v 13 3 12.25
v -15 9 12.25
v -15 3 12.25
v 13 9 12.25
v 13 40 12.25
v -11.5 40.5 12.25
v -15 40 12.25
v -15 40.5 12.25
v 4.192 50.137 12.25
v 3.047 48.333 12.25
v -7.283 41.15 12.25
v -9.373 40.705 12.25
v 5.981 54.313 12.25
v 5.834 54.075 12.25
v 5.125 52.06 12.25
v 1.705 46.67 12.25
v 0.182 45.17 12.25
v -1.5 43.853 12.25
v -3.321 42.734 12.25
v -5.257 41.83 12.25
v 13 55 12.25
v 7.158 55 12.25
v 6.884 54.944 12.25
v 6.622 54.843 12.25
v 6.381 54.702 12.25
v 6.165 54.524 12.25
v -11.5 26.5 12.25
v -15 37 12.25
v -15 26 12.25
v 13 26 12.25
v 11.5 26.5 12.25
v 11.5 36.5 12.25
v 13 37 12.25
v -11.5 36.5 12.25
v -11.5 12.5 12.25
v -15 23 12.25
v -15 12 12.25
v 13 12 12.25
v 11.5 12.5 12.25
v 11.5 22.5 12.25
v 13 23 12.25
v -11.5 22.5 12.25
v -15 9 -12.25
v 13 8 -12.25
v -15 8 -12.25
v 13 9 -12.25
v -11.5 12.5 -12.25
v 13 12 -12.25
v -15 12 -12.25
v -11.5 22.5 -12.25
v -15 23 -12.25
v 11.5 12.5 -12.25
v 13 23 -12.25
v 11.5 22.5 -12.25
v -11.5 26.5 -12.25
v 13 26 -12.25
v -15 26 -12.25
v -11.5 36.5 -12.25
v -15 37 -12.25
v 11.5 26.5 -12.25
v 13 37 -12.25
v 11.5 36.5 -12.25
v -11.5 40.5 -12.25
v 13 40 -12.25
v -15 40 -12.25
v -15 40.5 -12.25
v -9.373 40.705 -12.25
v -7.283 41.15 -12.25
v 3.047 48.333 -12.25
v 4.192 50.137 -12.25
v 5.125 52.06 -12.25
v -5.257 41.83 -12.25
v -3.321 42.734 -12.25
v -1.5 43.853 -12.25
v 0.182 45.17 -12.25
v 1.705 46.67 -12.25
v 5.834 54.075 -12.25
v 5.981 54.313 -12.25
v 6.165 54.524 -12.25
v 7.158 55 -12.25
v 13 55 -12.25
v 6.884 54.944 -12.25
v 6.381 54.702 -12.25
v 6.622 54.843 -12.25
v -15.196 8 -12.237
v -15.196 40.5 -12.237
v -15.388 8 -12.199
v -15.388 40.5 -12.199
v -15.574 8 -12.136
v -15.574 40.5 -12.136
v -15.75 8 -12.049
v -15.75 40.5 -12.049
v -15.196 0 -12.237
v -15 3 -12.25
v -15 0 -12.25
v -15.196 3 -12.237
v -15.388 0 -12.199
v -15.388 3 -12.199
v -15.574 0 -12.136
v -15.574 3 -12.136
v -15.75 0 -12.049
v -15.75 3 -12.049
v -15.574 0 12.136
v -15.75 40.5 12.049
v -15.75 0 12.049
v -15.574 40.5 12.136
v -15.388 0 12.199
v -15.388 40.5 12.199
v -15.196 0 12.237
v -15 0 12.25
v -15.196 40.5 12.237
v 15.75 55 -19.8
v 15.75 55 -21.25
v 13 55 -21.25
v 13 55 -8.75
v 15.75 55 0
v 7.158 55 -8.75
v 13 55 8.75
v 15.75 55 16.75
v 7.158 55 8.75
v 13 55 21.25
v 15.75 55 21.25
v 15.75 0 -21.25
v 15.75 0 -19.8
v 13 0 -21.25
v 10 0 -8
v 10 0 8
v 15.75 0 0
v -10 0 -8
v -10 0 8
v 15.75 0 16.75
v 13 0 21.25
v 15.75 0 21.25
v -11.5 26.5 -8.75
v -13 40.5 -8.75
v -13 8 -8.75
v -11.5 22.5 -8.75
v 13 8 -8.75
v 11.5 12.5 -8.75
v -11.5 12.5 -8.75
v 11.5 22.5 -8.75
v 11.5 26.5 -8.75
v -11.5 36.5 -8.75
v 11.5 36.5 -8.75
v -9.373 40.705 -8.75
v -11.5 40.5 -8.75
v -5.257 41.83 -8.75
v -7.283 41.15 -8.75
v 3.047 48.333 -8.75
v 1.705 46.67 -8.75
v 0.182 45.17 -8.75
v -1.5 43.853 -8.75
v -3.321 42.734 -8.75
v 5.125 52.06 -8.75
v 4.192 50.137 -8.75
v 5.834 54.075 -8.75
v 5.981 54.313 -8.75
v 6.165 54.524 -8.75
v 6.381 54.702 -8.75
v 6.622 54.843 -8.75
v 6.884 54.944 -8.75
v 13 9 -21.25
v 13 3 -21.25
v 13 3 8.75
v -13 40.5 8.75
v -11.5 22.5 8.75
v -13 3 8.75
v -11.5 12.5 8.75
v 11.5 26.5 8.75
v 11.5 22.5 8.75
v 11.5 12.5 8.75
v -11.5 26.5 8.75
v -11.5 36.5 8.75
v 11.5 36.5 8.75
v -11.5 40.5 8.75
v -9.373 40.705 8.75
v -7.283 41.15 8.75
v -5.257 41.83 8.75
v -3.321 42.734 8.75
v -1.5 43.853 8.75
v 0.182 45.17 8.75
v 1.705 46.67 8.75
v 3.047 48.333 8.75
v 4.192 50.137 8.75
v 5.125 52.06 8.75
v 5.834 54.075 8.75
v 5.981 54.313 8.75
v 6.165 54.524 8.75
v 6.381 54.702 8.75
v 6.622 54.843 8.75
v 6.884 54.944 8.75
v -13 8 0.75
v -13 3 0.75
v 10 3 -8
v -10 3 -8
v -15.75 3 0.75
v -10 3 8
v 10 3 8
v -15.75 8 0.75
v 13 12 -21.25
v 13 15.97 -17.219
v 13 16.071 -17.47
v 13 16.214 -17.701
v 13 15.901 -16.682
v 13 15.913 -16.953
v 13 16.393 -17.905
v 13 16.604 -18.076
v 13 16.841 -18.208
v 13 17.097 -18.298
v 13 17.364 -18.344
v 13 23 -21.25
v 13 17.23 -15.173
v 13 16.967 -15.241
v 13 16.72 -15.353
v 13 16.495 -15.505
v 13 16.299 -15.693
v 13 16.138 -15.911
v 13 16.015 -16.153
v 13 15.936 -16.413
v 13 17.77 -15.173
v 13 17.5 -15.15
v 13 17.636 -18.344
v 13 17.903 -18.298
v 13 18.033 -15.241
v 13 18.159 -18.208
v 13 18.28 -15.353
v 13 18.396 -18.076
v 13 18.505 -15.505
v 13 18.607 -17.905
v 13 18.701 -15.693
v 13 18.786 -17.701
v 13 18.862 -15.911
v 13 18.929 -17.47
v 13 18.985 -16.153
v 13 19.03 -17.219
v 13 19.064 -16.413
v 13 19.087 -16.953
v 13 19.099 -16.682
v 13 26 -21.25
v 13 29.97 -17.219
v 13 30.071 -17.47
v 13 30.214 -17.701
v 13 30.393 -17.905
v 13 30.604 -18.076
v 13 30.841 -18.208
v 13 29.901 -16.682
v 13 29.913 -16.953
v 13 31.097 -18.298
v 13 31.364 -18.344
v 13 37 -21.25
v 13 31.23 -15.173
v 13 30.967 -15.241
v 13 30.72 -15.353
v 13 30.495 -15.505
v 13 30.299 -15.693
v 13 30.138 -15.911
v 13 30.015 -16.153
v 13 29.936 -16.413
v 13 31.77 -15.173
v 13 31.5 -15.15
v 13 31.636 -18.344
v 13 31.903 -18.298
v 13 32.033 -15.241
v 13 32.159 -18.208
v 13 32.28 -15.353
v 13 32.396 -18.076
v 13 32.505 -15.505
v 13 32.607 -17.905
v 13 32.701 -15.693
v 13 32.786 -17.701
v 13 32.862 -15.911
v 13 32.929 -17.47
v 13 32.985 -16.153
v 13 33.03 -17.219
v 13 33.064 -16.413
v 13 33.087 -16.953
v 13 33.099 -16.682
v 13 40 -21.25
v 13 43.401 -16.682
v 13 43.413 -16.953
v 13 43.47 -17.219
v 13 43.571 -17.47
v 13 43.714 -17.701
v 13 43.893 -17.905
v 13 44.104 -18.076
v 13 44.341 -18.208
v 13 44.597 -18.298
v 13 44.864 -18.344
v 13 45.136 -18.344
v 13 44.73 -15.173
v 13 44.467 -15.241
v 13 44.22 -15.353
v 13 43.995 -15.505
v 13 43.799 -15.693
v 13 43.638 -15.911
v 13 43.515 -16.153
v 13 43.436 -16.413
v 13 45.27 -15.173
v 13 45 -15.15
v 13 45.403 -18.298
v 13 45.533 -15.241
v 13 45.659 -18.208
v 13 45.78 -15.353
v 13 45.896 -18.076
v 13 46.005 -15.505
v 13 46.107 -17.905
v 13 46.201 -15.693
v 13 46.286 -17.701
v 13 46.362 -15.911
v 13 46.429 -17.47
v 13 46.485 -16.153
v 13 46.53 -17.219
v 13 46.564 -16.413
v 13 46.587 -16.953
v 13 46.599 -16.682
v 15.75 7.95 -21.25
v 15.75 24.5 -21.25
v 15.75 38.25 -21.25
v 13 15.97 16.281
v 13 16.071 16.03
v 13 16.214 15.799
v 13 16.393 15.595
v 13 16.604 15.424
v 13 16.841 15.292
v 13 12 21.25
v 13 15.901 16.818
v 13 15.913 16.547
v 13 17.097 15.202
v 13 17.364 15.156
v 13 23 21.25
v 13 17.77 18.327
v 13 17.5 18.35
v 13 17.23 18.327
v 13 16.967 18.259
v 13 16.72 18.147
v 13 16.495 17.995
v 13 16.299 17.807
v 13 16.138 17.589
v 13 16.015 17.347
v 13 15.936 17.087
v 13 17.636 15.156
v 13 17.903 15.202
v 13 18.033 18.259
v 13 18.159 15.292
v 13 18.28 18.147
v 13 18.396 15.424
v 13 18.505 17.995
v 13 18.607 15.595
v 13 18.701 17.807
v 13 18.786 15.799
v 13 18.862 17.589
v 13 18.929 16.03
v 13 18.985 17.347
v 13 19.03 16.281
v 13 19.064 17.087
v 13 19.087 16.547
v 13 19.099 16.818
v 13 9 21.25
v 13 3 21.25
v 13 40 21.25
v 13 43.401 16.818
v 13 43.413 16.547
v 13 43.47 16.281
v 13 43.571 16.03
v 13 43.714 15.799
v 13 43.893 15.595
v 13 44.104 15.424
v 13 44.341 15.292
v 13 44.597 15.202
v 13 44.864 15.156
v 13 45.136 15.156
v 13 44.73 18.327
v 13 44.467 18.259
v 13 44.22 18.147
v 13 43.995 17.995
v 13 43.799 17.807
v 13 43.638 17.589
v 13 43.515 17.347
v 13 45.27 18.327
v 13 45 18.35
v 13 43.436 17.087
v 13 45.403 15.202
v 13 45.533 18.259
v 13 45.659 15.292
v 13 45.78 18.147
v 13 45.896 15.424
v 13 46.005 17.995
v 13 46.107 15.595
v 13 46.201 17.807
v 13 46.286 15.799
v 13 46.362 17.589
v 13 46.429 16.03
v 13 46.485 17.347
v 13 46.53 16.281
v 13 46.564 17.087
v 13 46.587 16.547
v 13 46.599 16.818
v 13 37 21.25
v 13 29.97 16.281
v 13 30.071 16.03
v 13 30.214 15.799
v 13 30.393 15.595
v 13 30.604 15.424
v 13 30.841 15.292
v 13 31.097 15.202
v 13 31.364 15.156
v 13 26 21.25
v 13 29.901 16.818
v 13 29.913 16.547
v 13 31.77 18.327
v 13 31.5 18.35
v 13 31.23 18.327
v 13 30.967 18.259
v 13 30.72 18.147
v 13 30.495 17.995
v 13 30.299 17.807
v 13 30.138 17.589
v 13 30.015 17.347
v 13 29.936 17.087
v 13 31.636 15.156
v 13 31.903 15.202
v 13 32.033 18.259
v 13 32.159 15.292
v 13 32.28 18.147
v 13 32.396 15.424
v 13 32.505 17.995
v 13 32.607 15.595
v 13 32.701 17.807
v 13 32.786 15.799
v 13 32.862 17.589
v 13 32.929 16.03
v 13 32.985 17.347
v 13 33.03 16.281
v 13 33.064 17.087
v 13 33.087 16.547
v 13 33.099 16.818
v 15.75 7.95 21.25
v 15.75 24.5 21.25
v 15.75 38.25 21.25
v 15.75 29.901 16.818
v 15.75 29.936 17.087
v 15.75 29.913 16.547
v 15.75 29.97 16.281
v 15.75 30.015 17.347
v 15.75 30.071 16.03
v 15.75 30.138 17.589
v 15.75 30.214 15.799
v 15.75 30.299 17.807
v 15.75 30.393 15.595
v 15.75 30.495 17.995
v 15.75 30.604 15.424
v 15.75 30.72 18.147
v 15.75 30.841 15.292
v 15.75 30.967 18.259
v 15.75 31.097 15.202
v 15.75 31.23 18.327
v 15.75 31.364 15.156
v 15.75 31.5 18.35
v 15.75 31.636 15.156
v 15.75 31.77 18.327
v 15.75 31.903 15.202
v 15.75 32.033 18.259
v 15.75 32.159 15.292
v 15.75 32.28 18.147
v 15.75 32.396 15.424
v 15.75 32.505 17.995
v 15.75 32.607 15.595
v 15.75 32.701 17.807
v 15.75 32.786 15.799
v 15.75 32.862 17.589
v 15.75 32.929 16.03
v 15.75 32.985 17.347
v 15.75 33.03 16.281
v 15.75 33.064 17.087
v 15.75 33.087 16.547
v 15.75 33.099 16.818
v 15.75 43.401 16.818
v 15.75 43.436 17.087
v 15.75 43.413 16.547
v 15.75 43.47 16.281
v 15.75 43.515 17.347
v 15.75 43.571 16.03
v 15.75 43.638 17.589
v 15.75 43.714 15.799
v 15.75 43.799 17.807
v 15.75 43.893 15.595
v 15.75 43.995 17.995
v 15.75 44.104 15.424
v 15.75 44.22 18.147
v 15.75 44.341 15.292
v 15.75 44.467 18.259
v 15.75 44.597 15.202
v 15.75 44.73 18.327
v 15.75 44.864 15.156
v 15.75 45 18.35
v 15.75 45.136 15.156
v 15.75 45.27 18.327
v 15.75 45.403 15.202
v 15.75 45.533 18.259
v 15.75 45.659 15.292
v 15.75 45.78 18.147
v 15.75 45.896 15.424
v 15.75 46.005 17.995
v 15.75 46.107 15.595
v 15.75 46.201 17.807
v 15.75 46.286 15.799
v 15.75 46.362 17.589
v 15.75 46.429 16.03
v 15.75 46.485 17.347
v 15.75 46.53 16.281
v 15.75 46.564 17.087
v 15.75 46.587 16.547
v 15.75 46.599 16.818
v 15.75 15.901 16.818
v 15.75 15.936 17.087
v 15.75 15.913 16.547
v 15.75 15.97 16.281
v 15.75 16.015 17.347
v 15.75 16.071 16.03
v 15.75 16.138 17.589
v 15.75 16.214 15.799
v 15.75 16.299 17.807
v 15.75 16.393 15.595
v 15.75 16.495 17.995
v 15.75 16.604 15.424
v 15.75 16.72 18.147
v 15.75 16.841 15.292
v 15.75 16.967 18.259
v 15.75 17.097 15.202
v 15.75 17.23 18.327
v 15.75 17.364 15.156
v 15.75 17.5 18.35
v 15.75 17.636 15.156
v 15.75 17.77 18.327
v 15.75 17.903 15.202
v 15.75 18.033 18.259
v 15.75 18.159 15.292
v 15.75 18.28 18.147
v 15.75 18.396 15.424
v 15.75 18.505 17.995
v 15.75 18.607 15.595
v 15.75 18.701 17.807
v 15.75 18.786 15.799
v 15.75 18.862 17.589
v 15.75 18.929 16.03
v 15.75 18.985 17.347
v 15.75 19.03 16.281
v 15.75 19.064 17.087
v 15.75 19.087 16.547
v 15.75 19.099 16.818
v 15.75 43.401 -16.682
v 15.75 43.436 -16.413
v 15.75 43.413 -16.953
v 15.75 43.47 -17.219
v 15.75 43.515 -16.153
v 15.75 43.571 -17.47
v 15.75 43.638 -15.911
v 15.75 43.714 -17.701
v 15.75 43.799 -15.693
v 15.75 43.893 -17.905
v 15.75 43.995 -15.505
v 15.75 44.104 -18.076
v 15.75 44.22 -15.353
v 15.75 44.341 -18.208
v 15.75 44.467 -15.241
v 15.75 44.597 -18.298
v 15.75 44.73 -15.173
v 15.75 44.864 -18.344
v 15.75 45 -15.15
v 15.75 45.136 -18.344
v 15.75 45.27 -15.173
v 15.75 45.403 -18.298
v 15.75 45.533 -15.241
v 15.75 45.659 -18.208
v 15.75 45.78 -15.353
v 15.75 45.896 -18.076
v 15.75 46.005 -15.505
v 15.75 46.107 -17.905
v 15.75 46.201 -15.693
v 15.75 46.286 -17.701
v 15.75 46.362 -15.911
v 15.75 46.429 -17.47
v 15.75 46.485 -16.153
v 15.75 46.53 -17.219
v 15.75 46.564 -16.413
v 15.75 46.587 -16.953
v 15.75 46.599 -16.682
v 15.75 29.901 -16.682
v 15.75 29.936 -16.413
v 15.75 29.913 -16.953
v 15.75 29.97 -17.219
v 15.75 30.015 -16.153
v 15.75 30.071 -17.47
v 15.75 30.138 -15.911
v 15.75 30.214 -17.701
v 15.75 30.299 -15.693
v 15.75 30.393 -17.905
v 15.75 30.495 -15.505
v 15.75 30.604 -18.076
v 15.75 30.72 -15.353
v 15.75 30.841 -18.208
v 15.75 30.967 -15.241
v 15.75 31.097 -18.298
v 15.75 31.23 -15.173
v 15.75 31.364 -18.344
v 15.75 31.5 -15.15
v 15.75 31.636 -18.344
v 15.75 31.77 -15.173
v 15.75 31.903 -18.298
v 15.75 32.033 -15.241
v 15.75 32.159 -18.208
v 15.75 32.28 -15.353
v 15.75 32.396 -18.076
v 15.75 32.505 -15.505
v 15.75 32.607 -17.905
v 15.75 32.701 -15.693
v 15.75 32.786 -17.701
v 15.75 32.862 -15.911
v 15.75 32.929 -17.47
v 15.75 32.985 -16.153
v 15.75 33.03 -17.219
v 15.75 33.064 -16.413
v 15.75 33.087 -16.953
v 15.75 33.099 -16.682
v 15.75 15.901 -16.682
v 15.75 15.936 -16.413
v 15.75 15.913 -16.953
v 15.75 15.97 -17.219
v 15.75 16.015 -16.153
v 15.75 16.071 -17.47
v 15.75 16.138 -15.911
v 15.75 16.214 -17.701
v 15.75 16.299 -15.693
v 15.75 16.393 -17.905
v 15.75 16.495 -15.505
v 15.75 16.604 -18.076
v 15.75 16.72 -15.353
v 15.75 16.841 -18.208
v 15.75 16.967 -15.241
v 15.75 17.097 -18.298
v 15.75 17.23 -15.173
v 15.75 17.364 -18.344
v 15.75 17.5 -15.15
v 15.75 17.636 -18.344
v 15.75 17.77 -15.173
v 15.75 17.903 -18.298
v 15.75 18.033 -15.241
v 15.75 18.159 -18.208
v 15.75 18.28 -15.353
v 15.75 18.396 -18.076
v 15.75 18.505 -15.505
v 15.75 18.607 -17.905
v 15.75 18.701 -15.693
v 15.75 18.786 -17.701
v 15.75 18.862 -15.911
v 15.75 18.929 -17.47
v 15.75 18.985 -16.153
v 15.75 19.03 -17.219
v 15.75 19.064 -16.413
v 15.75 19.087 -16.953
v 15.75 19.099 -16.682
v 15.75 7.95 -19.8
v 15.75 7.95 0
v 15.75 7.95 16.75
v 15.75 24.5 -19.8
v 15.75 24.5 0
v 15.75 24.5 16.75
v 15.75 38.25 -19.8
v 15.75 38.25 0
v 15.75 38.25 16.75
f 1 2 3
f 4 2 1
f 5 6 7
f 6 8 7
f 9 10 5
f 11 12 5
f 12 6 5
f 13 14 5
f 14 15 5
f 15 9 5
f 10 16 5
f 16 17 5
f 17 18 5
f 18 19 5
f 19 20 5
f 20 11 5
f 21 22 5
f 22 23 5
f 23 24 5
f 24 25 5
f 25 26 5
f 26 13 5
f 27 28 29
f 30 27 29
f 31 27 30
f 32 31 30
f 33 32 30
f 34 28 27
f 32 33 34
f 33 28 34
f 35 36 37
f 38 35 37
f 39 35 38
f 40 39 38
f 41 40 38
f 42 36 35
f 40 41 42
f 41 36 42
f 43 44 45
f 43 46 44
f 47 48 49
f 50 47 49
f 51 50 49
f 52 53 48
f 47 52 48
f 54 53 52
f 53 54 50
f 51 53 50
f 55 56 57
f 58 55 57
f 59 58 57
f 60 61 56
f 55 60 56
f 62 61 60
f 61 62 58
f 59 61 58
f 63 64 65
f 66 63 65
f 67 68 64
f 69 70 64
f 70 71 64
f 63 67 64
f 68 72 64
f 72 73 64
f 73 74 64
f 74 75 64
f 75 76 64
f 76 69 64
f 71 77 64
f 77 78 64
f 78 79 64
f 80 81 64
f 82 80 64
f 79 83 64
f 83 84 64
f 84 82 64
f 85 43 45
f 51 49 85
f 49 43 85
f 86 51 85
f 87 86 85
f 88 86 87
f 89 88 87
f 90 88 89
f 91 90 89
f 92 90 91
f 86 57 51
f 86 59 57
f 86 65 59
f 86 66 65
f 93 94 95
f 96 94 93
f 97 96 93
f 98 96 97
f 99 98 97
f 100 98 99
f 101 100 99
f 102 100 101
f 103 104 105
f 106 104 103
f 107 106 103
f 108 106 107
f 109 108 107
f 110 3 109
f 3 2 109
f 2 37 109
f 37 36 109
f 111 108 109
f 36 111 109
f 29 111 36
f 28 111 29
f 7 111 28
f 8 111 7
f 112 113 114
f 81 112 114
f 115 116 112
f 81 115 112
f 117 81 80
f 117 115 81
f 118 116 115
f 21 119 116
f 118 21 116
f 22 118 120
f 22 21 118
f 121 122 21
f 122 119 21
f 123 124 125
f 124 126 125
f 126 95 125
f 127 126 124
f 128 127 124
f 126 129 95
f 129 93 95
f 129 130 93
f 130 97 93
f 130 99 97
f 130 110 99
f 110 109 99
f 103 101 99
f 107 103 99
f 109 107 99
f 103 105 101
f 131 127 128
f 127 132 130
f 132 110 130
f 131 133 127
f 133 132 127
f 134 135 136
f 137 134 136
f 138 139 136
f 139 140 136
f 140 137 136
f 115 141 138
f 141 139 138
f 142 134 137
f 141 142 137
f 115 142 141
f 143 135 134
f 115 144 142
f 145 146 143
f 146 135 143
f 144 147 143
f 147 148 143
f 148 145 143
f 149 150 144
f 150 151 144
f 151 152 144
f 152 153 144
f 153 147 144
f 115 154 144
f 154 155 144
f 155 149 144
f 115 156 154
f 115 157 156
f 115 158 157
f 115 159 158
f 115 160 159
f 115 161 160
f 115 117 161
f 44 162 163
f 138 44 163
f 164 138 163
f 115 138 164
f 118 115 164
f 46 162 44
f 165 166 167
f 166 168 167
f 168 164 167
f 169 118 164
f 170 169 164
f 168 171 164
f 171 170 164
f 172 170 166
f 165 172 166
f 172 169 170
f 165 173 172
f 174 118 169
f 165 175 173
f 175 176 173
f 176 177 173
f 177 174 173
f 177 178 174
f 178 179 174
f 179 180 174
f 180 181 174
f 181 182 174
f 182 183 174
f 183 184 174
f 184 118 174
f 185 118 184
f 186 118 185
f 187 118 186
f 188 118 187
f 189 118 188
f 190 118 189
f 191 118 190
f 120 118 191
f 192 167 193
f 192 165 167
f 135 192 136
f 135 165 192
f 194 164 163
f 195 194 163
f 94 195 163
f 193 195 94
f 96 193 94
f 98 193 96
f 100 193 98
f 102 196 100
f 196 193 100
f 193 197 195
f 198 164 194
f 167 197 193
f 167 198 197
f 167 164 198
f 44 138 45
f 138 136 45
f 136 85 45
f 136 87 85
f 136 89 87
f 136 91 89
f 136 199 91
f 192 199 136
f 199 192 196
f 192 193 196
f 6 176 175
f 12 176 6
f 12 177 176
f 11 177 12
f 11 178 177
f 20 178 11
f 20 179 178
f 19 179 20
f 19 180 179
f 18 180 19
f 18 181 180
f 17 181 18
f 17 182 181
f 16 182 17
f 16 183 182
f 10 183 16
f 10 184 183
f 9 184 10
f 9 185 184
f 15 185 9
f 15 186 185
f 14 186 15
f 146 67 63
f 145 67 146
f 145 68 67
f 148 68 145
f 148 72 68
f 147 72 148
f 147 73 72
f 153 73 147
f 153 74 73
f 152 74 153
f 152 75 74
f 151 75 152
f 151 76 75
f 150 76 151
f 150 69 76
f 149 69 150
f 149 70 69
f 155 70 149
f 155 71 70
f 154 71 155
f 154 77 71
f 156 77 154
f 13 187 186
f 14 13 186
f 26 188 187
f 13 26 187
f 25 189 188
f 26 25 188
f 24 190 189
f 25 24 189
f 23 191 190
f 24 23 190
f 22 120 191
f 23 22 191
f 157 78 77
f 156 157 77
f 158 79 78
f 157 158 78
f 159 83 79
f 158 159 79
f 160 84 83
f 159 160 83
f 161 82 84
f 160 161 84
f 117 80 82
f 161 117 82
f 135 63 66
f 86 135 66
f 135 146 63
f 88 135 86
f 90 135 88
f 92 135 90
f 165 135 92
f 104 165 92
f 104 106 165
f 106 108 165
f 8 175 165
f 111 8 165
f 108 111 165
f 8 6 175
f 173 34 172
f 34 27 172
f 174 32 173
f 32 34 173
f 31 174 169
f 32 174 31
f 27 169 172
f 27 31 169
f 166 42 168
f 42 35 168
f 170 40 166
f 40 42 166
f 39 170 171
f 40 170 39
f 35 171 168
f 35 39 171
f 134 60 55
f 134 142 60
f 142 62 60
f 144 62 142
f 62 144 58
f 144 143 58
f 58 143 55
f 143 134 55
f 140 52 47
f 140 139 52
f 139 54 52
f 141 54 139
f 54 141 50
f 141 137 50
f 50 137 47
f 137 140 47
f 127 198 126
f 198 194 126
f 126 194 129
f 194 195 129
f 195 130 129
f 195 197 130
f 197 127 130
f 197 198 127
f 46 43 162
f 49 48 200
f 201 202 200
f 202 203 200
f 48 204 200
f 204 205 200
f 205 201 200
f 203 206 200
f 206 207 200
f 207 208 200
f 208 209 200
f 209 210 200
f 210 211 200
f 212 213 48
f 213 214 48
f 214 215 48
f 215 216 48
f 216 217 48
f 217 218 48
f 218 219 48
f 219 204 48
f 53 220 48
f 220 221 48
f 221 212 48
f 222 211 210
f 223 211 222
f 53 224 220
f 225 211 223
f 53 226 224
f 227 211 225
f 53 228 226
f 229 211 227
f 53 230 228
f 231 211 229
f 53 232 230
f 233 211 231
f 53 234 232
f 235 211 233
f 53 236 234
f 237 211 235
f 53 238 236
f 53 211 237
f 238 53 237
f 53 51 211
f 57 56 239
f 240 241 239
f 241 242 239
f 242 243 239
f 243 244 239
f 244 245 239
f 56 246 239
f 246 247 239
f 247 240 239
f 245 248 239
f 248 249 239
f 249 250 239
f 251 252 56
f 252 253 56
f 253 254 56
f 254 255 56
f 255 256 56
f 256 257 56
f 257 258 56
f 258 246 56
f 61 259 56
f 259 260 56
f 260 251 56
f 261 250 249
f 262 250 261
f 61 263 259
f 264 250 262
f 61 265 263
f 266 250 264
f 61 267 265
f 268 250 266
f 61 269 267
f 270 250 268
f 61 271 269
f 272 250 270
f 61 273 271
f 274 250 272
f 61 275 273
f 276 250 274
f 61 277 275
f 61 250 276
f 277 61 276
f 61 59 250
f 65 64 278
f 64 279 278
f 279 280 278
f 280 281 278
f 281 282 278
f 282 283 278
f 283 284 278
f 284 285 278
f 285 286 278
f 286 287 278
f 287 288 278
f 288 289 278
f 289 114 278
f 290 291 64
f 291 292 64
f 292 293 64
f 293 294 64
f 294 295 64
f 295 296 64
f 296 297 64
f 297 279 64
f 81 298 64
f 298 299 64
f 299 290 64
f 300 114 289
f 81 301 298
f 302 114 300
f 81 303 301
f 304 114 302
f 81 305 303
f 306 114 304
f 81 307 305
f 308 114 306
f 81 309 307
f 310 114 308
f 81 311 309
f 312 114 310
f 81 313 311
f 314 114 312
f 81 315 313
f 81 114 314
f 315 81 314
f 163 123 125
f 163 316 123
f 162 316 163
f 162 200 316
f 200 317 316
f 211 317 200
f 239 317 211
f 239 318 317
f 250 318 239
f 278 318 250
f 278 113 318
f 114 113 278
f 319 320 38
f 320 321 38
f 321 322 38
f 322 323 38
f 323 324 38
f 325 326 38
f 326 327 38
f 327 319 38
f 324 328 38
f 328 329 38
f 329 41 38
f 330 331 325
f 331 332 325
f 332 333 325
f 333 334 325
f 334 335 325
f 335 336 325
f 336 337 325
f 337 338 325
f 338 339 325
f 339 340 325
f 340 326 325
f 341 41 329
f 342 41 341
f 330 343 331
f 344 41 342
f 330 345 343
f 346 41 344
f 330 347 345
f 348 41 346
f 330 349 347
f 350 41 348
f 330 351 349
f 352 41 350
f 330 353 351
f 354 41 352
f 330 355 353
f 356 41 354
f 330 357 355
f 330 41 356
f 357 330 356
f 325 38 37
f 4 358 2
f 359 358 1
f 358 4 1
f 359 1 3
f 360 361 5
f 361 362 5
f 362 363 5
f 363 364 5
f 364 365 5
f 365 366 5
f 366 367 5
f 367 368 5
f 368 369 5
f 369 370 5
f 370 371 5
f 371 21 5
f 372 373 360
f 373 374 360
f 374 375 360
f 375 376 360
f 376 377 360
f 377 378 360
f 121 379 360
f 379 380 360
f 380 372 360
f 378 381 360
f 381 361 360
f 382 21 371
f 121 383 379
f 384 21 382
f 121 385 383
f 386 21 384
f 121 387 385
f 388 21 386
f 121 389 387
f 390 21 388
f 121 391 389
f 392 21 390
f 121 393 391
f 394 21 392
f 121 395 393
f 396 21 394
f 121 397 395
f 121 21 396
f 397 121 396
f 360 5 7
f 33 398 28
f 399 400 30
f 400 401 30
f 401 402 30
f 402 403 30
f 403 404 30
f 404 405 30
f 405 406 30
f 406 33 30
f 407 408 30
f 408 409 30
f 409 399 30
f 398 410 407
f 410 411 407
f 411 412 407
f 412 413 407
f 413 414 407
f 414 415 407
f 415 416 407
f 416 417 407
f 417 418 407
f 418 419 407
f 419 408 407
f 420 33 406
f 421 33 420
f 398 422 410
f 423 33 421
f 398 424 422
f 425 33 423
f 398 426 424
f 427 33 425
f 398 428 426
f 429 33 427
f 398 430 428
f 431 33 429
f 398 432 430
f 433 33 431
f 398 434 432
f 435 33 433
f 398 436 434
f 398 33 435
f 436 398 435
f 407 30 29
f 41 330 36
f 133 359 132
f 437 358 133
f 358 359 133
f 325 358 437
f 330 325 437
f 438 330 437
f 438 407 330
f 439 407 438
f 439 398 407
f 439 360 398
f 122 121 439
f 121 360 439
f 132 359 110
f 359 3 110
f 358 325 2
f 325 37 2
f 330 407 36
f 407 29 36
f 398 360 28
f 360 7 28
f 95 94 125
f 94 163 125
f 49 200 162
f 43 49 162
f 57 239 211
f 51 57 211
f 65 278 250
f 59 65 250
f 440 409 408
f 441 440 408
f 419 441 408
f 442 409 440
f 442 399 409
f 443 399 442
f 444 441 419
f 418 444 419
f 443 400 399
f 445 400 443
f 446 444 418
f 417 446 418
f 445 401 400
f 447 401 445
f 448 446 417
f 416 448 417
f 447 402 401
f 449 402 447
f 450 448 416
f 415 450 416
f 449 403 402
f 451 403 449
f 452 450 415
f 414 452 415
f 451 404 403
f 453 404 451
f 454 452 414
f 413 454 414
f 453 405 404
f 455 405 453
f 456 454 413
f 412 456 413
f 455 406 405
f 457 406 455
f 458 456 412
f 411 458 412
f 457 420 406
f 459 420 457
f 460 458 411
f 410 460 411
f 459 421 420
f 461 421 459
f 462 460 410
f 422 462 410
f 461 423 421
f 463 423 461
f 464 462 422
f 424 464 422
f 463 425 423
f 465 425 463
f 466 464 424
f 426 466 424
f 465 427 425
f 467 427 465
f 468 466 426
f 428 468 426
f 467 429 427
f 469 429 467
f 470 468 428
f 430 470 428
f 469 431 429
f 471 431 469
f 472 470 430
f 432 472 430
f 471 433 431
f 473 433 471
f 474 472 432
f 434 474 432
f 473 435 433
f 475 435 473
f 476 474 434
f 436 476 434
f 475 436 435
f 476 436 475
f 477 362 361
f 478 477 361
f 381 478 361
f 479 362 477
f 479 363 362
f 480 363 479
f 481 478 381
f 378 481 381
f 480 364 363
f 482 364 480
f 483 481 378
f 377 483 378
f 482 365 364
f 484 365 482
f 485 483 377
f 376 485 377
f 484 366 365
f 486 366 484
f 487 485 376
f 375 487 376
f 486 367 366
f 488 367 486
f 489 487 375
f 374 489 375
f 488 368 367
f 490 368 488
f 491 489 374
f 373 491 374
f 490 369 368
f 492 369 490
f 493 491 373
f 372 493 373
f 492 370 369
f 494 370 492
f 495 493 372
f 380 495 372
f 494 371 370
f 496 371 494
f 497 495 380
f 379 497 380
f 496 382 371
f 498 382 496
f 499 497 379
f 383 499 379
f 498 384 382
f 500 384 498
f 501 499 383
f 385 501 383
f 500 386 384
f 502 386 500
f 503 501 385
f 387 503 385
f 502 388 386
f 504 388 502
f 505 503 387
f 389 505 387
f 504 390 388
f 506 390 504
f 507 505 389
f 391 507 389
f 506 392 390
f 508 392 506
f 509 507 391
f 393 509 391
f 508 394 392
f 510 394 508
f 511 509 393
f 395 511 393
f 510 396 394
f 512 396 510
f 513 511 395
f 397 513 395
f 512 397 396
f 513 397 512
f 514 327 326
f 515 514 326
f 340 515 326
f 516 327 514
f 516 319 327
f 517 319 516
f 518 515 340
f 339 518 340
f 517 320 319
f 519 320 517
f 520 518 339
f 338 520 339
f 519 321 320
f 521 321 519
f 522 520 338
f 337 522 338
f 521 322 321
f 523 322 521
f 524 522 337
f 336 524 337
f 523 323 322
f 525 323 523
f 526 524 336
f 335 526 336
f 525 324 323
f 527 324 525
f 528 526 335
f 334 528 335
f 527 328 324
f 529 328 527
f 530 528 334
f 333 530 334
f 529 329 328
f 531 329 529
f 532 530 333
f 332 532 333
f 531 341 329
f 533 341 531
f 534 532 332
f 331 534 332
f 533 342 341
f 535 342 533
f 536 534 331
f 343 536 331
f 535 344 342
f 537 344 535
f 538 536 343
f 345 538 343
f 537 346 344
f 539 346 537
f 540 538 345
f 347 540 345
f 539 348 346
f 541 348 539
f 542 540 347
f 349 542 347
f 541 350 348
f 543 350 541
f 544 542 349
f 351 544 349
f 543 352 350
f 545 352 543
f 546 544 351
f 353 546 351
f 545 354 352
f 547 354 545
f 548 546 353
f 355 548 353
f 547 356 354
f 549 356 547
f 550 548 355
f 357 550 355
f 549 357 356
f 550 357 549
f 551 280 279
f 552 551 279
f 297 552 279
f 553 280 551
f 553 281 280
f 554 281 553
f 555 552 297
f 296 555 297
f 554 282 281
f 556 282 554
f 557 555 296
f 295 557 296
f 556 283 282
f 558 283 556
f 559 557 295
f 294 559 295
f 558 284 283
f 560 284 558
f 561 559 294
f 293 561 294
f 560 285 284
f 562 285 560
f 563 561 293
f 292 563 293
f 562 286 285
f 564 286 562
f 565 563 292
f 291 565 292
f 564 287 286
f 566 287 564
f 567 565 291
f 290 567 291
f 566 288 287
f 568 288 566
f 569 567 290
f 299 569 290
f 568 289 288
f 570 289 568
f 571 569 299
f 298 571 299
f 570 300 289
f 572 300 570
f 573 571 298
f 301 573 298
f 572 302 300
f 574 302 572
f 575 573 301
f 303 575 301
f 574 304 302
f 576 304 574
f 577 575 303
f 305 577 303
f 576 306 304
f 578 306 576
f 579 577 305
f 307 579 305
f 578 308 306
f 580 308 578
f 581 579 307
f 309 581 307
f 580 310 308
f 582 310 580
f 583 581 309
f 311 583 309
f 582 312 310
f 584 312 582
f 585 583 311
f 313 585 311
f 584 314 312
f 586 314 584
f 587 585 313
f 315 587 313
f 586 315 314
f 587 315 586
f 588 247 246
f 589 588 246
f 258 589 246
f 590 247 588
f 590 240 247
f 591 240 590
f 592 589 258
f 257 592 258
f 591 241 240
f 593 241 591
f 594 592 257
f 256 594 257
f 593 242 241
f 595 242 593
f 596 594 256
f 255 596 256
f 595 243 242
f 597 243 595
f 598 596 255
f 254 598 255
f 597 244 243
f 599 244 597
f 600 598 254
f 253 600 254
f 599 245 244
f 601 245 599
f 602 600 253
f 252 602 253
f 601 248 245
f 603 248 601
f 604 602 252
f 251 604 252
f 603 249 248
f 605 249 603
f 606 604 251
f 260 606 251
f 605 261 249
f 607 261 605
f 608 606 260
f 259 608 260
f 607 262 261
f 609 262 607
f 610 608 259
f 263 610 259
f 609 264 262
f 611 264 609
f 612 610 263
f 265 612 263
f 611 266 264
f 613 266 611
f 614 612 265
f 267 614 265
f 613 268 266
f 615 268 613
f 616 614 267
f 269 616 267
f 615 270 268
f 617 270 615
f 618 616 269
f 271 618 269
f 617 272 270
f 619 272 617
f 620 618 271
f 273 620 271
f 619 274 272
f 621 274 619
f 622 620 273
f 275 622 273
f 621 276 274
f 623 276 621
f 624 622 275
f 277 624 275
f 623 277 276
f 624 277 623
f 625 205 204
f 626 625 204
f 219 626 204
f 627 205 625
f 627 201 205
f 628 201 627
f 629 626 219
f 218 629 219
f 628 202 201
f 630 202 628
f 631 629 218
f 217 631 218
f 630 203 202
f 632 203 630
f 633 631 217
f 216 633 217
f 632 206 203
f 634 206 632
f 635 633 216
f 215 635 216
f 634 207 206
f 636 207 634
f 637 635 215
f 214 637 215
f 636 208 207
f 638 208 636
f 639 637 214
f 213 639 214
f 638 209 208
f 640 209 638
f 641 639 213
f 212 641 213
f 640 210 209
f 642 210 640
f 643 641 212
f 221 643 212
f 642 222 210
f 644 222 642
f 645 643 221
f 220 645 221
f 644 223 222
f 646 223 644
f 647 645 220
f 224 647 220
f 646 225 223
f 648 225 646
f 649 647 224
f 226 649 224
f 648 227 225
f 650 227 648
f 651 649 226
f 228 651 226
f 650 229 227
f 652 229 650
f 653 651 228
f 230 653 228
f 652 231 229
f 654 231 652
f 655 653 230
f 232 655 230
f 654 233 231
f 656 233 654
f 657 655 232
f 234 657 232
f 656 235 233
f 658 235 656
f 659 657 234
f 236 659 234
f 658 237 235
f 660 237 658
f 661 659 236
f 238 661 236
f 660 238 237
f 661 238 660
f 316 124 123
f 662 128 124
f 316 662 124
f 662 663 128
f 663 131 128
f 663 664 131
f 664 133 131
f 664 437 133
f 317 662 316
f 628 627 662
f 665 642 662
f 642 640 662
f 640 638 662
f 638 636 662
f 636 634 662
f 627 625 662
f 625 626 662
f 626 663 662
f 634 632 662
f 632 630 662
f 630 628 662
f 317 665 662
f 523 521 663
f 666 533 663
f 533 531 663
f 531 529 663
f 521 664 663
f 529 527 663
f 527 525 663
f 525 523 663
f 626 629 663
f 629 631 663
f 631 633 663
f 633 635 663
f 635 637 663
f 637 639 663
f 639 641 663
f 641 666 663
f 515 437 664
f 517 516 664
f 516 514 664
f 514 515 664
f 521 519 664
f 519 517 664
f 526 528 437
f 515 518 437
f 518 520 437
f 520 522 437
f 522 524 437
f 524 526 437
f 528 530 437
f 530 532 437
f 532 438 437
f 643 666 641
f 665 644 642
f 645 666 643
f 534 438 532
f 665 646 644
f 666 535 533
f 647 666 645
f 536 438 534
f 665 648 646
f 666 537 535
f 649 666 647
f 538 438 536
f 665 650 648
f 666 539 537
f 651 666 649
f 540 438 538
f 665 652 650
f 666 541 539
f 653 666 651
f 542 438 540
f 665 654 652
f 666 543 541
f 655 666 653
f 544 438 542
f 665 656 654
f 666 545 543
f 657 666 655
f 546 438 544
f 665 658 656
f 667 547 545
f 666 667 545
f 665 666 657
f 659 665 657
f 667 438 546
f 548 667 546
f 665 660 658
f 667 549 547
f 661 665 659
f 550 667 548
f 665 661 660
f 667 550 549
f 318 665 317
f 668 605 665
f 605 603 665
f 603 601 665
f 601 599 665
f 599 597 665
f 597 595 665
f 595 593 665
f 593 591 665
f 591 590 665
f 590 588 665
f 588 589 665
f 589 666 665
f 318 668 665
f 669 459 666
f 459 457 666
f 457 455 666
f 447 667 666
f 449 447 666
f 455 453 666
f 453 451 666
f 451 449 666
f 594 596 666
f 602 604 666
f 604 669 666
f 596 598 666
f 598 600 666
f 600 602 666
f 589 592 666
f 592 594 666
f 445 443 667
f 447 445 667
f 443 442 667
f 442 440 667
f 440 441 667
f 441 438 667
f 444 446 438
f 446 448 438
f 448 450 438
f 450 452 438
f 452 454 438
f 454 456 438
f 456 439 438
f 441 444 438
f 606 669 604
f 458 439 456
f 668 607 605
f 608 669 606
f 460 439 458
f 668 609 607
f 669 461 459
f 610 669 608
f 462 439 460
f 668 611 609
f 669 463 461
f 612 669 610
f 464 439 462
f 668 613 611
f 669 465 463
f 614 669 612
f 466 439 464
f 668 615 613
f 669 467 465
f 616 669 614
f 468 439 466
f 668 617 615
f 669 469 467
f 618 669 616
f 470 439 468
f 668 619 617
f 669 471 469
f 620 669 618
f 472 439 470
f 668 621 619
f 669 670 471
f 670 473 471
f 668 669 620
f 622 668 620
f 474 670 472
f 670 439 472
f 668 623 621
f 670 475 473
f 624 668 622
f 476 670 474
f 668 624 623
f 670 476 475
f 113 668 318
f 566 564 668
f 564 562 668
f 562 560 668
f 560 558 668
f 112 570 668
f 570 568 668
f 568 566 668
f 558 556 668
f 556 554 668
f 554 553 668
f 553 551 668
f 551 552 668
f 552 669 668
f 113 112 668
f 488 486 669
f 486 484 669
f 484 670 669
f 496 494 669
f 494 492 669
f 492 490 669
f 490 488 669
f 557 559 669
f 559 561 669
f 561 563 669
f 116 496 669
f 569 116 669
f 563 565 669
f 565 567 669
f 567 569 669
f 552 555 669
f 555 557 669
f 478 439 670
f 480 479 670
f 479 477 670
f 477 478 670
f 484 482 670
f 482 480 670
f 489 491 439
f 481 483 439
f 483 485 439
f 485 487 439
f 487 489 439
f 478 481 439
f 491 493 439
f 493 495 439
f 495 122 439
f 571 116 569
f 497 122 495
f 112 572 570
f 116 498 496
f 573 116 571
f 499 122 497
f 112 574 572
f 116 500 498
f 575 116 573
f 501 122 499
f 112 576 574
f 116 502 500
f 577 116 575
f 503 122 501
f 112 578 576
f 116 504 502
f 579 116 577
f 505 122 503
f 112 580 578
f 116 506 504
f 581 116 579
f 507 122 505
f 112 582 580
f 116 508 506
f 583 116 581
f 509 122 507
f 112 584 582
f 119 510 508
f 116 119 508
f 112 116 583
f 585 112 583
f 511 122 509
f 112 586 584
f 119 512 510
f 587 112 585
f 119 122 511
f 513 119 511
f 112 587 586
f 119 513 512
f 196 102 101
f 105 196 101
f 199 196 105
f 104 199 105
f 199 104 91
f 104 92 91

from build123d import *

# Parameters (mm, degrees)
RESSALTO_EXTRUS_O1_DEPTH   = 55
ESBO_O2_W                  = 26
ESBO_O2_H                  = 17.5
CORTE_EXTRUS_O1_DEPTH      = 52
CORTE_EXTRUS_O2_DEPTH      = 29.5
ESBO_O4_W                  = 23
ESBO_O4_H                  = 10
CORTE_EXTRUS_O3_DEPTH      = 52
ESBO_O5_W                  = 20
ESBO_O5_H                  = 16
CORTE_EXTRUS_O4_DEPTH      = 52
RESSALTO_EXTRUS_O3_DEPTH   = 9
RESSALTO_EXTRUS_O4_DEPTH   = 9
CORTE_EXTRUS_O7_DEPTH      = 62.227546905
ESBO_O12_R                 = 1.6
CORTE_EXTRUS_O8_DEPTH      = 66.930360988
CORTE_EXTRUS_O9_DEPTH      = 67.479320093
CORTE_EXTRUS_O9_DEPTH_BACK = 67.479320093


with BuildPart() as part:
    # Esboço1 → Ressalto-extrusão1 (new body)
    with BuildSketch(Plane(origin=(0, 0, 0), x_dir=(1, 0, 0), z_dir=(0, 1, 0))):
        with BuildLine():
            Line((15, 12.25), (16.5, 12.25))
            Line((16.5, 12.25), (16.5, 10.75))
            Line((16.5, 10.75), (16.5, -10.75))
            Line((16.5, -10.75), (16.5, -12.25))
            Line((16.5, -12.25), (15, -12.25))
            Line((15, -12.25), (-15, -12.25))
            ThreePointArc((-15, -12.25), (-16.060660172, -11.810660172), (-16.5, -10.75))
            Line((-16.5, -10.75), (-16.5, 10.75))
            ThreePointArc((-16.5, 10.75), (-16.060660172, 11.810660172), (-15, 12.25))
            Line((-15, 12.25), (15, 12.25))
        make_face()
    extrude(amount=RESSALTO_EXTRUS_O1_DEPTH)

    # Esboço2 → Corte-extrusão1 (cut)
    with BuildSketch(Plane(origin=(0, 55, 0), x_dir=(1, 0, 0), z_dir=(0, 1, 0))):
        Rectangle(ESBO_O2_W, ESBO_O2_H)
    extrude(amount=-CORTE_EXTRUS_O1_DEPTH, mode=Mode.SUBTRACT)

    # Esboço3 → Corte-extrusão2 (cut)
    with BuildSketch(Plane.ZY.offset(16.5)):
        Polygon((-4.25, 8), (0.75, 8), (0.75, 3), (-4.25, 3), (-12.25, 3), (-12.25, 8), align=None)
    extrude(amount=-CORTE_EXTRUS_O2_DEPTH, mode=Mode.SUBTRACT)

    # Esboço4 → Corte-extrusão3 (cut)
    with BuildSketch(Plane(origin=(0, 0, -12.25), x_dir=(-1, 0, 0), z_dir=(0, 0, -1))):
        with Locations((0, 17.5)):
            Rectangle(ESBO_O4_W, ESBO_O4_H)
        with Locations((0, 31.5)):
            Rectangle(ESBO_O4_W, ESBO_O4_H)
        with BuildLine():
            Line((11.5, 40.5), (24.942410125, 40.5))
            Line((24.942410125, 40.5), (24.942410125, 59.834456184))
            Line((24.942410125, 59.834456184), (-1.5, 59.834456184))
            Line((-1.5, 59.834456184), (-6.076098787, 62.09241335))
            Line((-6.076098787, 62.09241335), (-7.576098787, 62.09241335))
            Line((-7.576098787, 62.09241335), (-7.576098787, 57.63082944))
            Line((-7.576098787, 57.63082944), (-16.5, 57.63082944))
            Line((-16.5, 57.63082944), (-16.5, 55))
            Line((-16.5, 55), (-7.576098787, 55))
            Line((-7.576098787, 55), (-7.157696235, 55))
            ThreePointArc((-7.157696235, 55), (-6.380774636, 54.702427517), (-5.834045456, 54.07533601))
            ThreePointArc((-5.834045456, 54.07533601), (0.640063345, 44.48758485), (11.5, 40.5))
        make_face()
    extrude(amount=-CORTE_EXTRUS_O3_DEPTH, mode=Mode.SUBTRACT)

    # Esboço5 → Corte-extrusão4 (cut)
    with BuildSketch(Plane.XZ):
        Rectangle(ESBO_O5_W, ESBO_O5_H)
    extrude(amount=-CORTE_EXTRUS_O4_DEPTH, mode=Mode.SUBTRACT)

    # Esboço6 → Ressalto-extrusão3 (add)
    with BuildSketch(Plane(origin=(0, 0, -12.25), x_dir=(-1, 0, 0), z_dir=(0, 0, -1))):
        Polygon((-16.5, 55), (-13, 55), (-13, 40), (-8.260417548, 40), (15, 40), (15, 37), (-8.260417548, 37), (-13, 37), (-13, 26), (-8.260417548, 26), (15, 26), (15, 23), (-8.260417548, 23), (-13, 23), (-13, 12), (-8.260417548, 12), (15, 12), (15, 9), (-8.260417548, 9), (-13, 9), (-13, 3), (15, 3), (15, 0), (-16.5, 0), align=None)
    extrude(amount=RESSALTO_EXTRUS_O3_DEPTH)

    # Esboço9 → Ressalto-extrusão4 (add)
    with BuildSketch(Plane.XY.offset(12.25)):
        Polygon((13, 23), (13, 12), (8.260417548, 12), (-15, 12), (-15, 9), (8.260417548, 9), (13, 9), (13, 3), (-15, 3), (-15, 0), (16.5, 0), (16.5, 55), (13, 55), (13, 40), (8.260417548, 40), (-15, 40), (-15, 37), (8.260417548, 37), (13, 37), (13, 26), (8.260417548, 26), (-15, 26), (-15, 23), (8.260417548, 23), align=None)
    extrude(amount=RESSALTO_EXTRUS_O4_DEPTH)

    # Esboço11 → Corte-extrusão7 (cut, through all)
    with BuildSketch(Plane(origin=(0, 55, 0), x_dir=(1, 0, 0), z_dir=(0, 1, 0))):
        Polygon((13, 21.25), (-15, 12.25), (-18.396269007, 13.557013), (-20.171014906, 2.968836485), (-21.687729599, -13.92980577), (-19.283641957, -16.807997198), (-15, -12.25), (13, -21.25), (12.387270144, -22.842176527), (-13.733579981, -25.767037441), (-25.593893111, -17.703590231), (-24.101496534, -8.799916531), (-21.404407074, 21.25), (-11.342896145, 26.819075861), (13.346838628, 26.819075861), align=None)
    extrude(amount=-CORTE_EXTRUS_O7_DEPTH, mode=Mode.SUBTRACT)

    # Esboço12 → Corte-extrusão8 (cut, through all)
    with BuildSketch(Plane.ZY.offset(-13)):
        with Locations((-16.75, 45)):
            Circle(ESBO_O12_R)
        with Locations((-16.75, 31.5)):
            Circle(ESBO_O12_R)
        with Locations((-16.75, 17.5)):
            Circle(ESBO_O12_R)
        with Locations((16.75, 17.5)):
            Circle(ESBO_O12_R)
        with Locations((16.75, 31.5)):
            Circle(ESBO_O12_R)
        with Locations((16.75, 45)):
            Circle(ESBO_O12_R)
    extrude(amount=-CORTE_EXTRUS_O8_DEPTH, mode=Mode.SUBTRACT)

    # Esboço13 → Corte-extrusão9 (cut, two sides: drawn at the far end of the back side and taken through both)
    with BuildSketch(Plane(origin=(0, 0, -12.25), x_dir=(-1, 0, 0), z_dir=(0, 0, -1)).offset(-CORTE_EXTRUS_O9_DEPTH_BACK)):
        Polygon((-16, 57.748375369), (-15.75, 57.748375369), (-15.75, -2.748375369), (-16, -2.748375369), (-16.5, -2.748375369), (-21.567741729, -3.81911432), (-26.240802846, 1.764024497), (-29.75124657, 11.630119118), (-32.031223005, 26.530526522), (-32.963463423, 30.826938884), (-36.481605691, 47.040985858), align=None)
        Polygon((16.5, -3.81911432), (16, -3.81911432), (15.75, -9.987267399), (15.75, 53.083012796), (16, 53.083012796), (35.334385386, 35.109894688), (36.940493813, 23.637691641), (28.756988973, 6.505868423), align=None)
    extrude(amount=CORTE_EXTRUS_O9_DEPTH + CORTE_EXTRUS_O9_DEPTH_BACK, mode=Mode.SUBTRACT)


solid = part.part
